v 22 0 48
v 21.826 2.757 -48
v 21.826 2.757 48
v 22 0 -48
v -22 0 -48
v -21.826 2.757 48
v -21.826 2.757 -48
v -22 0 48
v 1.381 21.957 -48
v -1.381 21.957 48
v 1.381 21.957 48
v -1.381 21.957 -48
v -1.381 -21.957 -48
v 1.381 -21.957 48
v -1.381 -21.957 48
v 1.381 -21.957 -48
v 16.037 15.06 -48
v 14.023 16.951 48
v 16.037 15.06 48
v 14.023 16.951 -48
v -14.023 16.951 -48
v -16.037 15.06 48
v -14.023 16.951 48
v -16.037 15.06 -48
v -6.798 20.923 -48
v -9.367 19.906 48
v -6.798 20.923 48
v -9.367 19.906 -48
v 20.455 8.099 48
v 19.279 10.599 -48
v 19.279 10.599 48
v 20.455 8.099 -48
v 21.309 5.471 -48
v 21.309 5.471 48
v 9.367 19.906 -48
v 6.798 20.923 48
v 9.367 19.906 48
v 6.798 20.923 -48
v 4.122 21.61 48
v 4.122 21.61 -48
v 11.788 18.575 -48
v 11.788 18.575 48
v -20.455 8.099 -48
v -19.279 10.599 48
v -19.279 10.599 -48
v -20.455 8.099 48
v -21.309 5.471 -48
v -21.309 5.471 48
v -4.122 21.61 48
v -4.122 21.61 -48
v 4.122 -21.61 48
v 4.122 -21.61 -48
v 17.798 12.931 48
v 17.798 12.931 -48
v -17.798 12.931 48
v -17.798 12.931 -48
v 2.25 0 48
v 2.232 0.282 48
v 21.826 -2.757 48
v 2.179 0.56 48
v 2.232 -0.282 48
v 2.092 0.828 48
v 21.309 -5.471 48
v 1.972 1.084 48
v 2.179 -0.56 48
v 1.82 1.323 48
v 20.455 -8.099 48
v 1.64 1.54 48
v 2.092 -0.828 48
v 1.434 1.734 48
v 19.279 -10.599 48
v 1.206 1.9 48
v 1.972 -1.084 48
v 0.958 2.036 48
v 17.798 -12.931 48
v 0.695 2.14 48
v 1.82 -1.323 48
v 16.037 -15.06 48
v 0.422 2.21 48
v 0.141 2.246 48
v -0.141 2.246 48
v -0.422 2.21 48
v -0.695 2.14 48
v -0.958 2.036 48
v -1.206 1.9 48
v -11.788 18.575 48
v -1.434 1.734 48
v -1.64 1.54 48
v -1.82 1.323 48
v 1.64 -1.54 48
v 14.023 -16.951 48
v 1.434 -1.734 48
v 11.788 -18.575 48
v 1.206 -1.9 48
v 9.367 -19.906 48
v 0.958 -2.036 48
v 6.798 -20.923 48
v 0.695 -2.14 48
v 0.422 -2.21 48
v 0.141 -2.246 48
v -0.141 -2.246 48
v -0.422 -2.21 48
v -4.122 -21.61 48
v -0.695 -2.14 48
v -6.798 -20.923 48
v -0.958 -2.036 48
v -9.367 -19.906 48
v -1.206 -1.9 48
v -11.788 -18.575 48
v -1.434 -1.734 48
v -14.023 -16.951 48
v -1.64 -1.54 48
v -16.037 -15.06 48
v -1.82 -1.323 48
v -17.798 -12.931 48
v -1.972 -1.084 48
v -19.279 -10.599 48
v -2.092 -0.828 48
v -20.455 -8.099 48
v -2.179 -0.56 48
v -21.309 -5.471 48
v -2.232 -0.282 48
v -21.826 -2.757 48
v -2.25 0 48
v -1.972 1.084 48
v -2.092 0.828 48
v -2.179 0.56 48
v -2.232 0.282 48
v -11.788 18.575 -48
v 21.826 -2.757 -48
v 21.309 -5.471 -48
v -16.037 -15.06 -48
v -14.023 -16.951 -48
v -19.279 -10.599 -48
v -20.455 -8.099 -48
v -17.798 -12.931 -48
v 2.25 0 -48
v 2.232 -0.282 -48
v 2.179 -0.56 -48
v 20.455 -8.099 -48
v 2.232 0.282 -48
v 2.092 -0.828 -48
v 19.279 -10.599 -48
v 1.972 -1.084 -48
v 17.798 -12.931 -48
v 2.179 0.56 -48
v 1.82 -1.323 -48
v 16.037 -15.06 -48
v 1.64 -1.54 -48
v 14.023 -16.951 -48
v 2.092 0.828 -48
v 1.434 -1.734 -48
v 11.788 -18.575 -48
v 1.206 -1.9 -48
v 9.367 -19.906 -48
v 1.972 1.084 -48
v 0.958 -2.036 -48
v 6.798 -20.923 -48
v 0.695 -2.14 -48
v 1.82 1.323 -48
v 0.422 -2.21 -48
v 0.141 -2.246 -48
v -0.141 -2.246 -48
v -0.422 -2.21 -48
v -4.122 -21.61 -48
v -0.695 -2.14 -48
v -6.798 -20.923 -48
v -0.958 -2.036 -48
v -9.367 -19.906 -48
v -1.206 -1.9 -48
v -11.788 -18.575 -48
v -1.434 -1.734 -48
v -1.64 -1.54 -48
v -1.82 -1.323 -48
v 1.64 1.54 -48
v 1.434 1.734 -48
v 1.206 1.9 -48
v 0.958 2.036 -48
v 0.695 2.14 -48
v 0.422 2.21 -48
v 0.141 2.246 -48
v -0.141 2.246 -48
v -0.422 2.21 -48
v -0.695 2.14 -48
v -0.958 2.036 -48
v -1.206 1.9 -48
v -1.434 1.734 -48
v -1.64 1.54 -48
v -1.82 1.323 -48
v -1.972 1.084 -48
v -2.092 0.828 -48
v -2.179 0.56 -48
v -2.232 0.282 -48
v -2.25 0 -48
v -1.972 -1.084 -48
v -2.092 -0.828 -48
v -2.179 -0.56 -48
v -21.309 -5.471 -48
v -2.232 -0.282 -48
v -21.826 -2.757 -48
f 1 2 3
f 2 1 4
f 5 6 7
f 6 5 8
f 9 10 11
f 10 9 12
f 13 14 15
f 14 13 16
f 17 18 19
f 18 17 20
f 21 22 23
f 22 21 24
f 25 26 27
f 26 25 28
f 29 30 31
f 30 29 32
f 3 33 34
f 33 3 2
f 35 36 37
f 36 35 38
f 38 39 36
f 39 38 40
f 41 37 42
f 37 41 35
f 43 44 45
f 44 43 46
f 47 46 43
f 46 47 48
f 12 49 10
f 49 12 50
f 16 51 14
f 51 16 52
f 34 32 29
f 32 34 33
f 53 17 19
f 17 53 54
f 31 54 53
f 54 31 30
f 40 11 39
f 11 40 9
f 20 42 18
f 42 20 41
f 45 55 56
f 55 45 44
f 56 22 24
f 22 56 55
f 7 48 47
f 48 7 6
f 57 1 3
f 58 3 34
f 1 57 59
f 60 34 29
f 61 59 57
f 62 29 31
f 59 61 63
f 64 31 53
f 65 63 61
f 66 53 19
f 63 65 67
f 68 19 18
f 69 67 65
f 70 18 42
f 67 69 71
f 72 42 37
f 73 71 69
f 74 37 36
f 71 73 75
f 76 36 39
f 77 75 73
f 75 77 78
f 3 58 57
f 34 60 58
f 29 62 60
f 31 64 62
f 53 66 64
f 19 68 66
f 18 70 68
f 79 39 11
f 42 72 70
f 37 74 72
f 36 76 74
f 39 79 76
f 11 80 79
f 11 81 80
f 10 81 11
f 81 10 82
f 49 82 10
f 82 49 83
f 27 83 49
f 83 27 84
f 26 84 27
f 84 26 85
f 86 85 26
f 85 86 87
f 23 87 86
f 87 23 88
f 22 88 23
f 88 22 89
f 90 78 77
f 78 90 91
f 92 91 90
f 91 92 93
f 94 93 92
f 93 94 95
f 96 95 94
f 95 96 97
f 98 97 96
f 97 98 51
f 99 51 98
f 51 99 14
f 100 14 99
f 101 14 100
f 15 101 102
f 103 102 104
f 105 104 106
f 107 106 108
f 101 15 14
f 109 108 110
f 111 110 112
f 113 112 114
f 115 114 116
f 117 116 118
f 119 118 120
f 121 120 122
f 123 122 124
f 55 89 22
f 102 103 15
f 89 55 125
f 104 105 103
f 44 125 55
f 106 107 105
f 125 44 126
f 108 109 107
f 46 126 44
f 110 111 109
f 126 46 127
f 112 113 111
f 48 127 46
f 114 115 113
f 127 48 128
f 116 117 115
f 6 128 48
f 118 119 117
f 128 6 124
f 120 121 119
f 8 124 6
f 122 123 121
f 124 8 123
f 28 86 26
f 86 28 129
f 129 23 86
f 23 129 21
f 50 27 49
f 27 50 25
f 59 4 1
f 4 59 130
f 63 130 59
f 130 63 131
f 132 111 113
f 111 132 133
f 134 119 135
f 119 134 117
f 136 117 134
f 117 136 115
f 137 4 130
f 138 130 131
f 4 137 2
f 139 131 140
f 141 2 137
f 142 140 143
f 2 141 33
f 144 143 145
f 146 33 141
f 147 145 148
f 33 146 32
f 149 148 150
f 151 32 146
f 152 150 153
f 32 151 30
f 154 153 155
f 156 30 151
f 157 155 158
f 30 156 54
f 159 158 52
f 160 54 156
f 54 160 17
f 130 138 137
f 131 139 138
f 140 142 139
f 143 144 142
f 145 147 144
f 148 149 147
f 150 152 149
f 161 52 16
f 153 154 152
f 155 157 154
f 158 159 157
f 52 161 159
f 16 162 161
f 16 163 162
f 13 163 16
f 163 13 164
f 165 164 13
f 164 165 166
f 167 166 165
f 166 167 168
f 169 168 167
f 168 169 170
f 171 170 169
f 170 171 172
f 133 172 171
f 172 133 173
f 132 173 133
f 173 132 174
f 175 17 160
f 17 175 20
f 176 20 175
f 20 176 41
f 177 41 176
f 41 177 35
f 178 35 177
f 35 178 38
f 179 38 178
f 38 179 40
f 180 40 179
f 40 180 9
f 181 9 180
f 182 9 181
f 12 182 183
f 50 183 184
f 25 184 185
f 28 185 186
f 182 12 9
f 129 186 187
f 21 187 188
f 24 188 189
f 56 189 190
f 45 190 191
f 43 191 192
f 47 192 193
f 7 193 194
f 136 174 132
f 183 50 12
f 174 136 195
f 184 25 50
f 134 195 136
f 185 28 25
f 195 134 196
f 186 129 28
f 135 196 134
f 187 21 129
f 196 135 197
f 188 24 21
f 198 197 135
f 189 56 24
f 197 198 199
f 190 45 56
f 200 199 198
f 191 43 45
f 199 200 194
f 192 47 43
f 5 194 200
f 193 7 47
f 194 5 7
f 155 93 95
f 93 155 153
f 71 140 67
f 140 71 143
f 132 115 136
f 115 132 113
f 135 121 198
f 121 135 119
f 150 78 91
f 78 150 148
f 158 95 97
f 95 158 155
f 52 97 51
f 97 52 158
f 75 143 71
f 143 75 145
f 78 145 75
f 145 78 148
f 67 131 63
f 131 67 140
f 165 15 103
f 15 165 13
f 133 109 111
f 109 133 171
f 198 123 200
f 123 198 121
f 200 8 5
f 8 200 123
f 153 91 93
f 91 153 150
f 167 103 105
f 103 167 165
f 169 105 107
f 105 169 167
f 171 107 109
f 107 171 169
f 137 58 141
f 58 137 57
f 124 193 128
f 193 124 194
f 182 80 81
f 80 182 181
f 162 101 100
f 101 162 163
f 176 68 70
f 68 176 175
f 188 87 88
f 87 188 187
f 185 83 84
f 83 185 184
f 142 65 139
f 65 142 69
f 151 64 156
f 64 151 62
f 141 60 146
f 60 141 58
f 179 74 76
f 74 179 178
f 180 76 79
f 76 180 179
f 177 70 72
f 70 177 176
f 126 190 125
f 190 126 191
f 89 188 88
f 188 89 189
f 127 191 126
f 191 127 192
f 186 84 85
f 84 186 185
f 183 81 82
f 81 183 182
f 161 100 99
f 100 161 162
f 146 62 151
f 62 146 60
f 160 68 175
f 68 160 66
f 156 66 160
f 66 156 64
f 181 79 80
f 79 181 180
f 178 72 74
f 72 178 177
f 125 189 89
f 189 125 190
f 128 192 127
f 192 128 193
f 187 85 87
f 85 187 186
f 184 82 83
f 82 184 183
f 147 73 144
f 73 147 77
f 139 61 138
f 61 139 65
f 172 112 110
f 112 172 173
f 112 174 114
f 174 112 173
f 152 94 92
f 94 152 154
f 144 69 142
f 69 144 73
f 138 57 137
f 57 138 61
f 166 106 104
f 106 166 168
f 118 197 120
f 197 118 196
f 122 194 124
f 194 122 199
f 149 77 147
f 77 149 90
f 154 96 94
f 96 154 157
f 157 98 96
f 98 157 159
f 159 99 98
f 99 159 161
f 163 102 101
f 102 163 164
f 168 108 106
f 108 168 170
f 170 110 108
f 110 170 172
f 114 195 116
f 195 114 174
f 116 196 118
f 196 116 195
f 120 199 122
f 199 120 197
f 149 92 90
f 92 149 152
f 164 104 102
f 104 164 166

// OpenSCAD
$fn = 50;


difference() {
	union() {
		translate(v = [0, 0, -48.0000000000]) {
			cylinder(h = 96, r = 22.0000000000);
		}
	}
	union() {
		translate(v = [0, 0, -100.0000000000]) {
			cylinder(h = 200, r = 2.2500000000);
		}
	}
}
